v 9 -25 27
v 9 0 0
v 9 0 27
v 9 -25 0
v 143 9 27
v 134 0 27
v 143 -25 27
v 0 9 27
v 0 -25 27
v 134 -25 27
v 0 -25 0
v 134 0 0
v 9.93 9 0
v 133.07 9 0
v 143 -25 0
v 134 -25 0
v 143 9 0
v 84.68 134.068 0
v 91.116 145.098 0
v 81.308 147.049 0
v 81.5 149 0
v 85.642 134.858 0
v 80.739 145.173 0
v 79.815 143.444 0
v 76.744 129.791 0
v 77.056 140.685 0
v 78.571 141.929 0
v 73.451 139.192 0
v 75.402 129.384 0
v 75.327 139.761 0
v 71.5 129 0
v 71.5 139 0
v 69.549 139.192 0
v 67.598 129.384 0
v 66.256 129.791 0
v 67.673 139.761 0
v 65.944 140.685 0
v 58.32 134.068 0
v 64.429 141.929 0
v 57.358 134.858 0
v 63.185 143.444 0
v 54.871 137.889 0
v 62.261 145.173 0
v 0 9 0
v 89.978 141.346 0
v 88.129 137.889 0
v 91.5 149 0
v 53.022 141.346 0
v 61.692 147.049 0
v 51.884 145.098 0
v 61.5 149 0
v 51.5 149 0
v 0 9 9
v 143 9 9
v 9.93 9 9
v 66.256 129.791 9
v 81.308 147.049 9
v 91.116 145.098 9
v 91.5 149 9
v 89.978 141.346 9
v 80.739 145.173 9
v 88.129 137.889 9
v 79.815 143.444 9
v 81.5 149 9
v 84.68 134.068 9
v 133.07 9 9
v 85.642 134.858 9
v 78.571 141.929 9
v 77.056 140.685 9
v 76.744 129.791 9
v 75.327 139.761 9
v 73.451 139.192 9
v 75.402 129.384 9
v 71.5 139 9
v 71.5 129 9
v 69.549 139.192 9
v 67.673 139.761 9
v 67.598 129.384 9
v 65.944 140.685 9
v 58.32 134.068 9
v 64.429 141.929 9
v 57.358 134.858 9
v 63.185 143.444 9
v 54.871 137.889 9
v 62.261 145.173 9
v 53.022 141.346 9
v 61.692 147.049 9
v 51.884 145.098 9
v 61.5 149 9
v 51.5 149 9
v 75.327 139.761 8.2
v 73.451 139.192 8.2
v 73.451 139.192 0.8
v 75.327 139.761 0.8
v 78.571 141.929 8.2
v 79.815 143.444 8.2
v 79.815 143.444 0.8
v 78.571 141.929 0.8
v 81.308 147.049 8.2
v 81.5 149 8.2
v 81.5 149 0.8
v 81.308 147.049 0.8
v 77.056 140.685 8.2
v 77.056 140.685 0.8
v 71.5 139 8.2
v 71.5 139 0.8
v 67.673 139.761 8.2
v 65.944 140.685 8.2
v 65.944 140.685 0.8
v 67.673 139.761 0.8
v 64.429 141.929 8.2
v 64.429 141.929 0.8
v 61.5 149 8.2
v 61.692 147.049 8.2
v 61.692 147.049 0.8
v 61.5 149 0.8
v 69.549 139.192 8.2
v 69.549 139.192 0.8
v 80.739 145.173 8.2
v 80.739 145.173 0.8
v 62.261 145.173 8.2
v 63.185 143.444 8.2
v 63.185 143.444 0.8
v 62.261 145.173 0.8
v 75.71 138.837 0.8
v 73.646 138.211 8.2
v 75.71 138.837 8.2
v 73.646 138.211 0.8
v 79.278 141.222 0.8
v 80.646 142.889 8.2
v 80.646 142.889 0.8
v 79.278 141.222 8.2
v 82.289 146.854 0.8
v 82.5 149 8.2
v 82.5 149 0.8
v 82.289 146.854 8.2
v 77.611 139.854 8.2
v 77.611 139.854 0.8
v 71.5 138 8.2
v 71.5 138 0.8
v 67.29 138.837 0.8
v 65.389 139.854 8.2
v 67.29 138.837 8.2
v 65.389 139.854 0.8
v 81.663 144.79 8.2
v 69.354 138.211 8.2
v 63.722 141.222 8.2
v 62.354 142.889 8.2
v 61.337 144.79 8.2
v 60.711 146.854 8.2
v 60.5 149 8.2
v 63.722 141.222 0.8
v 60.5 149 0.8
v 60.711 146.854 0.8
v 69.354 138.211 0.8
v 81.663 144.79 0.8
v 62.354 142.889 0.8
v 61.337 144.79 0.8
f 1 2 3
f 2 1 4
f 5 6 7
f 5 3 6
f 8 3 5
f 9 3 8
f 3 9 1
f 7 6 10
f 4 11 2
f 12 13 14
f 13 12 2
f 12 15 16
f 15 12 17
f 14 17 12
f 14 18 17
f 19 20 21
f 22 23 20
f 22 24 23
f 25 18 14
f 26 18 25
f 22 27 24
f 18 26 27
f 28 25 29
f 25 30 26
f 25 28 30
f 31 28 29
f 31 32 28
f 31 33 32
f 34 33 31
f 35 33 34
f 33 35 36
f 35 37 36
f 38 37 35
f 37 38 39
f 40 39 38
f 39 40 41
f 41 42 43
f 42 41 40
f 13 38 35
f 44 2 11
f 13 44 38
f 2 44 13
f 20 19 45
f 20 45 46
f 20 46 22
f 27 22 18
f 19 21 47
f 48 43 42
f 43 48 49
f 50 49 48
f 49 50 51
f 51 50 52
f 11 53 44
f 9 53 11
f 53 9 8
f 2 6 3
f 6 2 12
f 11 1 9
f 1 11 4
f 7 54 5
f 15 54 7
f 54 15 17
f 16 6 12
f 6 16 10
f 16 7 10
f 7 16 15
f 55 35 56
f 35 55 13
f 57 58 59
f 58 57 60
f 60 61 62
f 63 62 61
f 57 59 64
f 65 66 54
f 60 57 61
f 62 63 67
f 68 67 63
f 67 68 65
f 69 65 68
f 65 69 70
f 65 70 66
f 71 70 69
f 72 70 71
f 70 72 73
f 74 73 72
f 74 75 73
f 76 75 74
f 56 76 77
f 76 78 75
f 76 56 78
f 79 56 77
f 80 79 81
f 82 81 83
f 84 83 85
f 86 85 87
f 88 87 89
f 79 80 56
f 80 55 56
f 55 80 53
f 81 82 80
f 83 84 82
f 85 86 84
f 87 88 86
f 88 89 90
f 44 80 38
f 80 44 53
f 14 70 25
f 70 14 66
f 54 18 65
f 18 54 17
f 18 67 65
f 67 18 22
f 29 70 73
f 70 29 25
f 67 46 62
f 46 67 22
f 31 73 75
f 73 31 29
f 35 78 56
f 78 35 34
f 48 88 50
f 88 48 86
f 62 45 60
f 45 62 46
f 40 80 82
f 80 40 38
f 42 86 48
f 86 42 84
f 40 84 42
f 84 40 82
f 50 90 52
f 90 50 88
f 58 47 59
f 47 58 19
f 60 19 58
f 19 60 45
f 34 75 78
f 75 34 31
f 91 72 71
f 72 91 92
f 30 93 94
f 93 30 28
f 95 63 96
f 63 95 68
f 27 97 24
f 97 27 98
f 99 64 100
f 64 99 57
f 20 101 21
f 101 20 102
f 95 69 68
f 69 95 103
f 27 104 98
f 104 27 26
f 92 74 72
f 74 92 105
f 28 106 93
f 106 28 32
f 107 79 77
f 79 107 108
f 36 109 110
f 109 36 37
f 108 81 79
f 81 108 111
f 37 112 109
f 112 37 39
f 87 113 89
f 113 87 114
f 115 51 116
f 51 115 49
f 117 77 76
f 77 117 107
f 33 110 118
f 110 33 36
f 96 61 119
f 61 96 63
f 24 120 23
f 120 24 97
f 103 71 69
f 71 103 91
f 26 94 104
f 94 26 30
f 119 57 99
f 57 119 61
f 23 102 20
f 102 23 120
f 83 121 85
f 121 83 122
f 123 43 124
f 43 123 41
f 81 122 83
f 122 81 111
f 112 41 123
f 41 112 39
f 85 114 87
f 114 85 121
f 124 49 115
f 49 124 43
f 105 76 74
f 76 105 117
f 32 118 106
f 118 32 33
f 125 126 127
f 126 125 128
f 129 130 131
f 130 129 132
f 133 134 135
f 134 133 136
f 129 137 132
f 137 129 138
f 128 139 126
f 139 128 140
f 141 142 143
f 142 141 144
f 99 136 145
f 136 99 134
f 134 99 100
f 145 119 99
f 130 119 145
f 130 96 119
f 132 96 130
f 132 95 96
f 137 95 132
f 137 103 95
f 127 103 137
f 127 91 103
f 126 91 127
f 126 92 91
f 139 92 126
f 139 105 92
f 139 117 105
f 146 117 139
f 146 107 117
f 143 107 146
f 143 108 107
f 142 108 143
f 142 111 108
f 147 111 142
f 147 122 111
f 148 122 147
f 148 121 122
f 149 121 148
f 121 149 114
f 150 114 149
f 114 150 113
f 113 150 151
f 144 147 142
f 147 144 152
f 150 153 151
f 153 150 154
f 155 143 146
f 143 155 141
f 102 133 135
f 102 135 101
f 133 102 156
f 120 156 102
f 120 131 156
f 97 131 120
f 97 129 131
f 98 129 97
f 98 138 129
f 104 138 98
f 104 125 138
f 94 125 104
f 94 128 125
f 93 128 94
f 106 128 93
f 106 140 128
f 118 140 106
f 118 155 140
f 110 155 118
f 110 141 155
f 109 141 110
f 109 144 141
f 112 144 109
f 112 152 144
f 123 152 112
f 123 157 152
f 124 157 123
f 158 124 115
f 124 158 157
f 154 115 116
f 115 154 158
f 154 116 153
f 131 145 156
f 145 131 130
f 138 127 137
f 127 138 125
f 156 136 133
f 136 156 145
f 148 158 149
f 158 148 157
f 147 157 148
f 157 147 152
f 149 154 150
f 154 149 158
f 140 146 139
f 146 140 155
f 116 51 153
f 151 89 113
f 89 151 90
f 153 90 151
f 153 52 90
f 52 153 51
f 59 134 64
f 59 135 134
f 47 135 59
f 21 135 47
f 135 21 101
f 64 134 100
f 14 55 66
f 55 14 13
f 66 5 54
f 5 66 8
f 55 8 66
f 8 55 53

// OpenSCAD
// Model by Isaac Foraker
//
// Released under Creative Commons Attribution 4.0 International (CC BY 4.0)
// https://creativecommons.org/licenses/by/4.0/

$fn=32;
t = 9;      // Stand minimum thickness
sr = 125;   // Spool radius
rad = sr + 15;
r608 = 11;
st = 117;   // spool thickness
bw = 25;    // base width (bigger for more support)
w = 125; // Width of PSU

module part1() {
    cube([w+t*2, t, t*3]);
    // Make legs
    translate([0,-bw,0]) {
        cube([t,bw,t*3]);
        translate([w+t,0,0]) cube([t,bw,t*3]);
    }
    // Build the stand from the middle out
    translate([w/2+t,t,0]) {
        for (i = [0:1]) mirror([i,0,0]) {
            translate([-w/2-t,0,0]) rotate([0,0,-25]) cube([t, rad+4, t]);
        }
        translate([0,rad,0]) {
            intersection() {
                translate([-r608-t, -r608-t, 0]) cube([(r608+t)*2,r608+t,t]);
                difference() {
                    cylinder(h=t, r=r608+t);
                    translate([0,0,-0.01])
                        cylinder(h=t+0.02,r=r608-1);
                    translate([0,0,0.8])
                        cylinder(h=7.4, r=r608);
                }
            }
        }
    }
}


part1();
